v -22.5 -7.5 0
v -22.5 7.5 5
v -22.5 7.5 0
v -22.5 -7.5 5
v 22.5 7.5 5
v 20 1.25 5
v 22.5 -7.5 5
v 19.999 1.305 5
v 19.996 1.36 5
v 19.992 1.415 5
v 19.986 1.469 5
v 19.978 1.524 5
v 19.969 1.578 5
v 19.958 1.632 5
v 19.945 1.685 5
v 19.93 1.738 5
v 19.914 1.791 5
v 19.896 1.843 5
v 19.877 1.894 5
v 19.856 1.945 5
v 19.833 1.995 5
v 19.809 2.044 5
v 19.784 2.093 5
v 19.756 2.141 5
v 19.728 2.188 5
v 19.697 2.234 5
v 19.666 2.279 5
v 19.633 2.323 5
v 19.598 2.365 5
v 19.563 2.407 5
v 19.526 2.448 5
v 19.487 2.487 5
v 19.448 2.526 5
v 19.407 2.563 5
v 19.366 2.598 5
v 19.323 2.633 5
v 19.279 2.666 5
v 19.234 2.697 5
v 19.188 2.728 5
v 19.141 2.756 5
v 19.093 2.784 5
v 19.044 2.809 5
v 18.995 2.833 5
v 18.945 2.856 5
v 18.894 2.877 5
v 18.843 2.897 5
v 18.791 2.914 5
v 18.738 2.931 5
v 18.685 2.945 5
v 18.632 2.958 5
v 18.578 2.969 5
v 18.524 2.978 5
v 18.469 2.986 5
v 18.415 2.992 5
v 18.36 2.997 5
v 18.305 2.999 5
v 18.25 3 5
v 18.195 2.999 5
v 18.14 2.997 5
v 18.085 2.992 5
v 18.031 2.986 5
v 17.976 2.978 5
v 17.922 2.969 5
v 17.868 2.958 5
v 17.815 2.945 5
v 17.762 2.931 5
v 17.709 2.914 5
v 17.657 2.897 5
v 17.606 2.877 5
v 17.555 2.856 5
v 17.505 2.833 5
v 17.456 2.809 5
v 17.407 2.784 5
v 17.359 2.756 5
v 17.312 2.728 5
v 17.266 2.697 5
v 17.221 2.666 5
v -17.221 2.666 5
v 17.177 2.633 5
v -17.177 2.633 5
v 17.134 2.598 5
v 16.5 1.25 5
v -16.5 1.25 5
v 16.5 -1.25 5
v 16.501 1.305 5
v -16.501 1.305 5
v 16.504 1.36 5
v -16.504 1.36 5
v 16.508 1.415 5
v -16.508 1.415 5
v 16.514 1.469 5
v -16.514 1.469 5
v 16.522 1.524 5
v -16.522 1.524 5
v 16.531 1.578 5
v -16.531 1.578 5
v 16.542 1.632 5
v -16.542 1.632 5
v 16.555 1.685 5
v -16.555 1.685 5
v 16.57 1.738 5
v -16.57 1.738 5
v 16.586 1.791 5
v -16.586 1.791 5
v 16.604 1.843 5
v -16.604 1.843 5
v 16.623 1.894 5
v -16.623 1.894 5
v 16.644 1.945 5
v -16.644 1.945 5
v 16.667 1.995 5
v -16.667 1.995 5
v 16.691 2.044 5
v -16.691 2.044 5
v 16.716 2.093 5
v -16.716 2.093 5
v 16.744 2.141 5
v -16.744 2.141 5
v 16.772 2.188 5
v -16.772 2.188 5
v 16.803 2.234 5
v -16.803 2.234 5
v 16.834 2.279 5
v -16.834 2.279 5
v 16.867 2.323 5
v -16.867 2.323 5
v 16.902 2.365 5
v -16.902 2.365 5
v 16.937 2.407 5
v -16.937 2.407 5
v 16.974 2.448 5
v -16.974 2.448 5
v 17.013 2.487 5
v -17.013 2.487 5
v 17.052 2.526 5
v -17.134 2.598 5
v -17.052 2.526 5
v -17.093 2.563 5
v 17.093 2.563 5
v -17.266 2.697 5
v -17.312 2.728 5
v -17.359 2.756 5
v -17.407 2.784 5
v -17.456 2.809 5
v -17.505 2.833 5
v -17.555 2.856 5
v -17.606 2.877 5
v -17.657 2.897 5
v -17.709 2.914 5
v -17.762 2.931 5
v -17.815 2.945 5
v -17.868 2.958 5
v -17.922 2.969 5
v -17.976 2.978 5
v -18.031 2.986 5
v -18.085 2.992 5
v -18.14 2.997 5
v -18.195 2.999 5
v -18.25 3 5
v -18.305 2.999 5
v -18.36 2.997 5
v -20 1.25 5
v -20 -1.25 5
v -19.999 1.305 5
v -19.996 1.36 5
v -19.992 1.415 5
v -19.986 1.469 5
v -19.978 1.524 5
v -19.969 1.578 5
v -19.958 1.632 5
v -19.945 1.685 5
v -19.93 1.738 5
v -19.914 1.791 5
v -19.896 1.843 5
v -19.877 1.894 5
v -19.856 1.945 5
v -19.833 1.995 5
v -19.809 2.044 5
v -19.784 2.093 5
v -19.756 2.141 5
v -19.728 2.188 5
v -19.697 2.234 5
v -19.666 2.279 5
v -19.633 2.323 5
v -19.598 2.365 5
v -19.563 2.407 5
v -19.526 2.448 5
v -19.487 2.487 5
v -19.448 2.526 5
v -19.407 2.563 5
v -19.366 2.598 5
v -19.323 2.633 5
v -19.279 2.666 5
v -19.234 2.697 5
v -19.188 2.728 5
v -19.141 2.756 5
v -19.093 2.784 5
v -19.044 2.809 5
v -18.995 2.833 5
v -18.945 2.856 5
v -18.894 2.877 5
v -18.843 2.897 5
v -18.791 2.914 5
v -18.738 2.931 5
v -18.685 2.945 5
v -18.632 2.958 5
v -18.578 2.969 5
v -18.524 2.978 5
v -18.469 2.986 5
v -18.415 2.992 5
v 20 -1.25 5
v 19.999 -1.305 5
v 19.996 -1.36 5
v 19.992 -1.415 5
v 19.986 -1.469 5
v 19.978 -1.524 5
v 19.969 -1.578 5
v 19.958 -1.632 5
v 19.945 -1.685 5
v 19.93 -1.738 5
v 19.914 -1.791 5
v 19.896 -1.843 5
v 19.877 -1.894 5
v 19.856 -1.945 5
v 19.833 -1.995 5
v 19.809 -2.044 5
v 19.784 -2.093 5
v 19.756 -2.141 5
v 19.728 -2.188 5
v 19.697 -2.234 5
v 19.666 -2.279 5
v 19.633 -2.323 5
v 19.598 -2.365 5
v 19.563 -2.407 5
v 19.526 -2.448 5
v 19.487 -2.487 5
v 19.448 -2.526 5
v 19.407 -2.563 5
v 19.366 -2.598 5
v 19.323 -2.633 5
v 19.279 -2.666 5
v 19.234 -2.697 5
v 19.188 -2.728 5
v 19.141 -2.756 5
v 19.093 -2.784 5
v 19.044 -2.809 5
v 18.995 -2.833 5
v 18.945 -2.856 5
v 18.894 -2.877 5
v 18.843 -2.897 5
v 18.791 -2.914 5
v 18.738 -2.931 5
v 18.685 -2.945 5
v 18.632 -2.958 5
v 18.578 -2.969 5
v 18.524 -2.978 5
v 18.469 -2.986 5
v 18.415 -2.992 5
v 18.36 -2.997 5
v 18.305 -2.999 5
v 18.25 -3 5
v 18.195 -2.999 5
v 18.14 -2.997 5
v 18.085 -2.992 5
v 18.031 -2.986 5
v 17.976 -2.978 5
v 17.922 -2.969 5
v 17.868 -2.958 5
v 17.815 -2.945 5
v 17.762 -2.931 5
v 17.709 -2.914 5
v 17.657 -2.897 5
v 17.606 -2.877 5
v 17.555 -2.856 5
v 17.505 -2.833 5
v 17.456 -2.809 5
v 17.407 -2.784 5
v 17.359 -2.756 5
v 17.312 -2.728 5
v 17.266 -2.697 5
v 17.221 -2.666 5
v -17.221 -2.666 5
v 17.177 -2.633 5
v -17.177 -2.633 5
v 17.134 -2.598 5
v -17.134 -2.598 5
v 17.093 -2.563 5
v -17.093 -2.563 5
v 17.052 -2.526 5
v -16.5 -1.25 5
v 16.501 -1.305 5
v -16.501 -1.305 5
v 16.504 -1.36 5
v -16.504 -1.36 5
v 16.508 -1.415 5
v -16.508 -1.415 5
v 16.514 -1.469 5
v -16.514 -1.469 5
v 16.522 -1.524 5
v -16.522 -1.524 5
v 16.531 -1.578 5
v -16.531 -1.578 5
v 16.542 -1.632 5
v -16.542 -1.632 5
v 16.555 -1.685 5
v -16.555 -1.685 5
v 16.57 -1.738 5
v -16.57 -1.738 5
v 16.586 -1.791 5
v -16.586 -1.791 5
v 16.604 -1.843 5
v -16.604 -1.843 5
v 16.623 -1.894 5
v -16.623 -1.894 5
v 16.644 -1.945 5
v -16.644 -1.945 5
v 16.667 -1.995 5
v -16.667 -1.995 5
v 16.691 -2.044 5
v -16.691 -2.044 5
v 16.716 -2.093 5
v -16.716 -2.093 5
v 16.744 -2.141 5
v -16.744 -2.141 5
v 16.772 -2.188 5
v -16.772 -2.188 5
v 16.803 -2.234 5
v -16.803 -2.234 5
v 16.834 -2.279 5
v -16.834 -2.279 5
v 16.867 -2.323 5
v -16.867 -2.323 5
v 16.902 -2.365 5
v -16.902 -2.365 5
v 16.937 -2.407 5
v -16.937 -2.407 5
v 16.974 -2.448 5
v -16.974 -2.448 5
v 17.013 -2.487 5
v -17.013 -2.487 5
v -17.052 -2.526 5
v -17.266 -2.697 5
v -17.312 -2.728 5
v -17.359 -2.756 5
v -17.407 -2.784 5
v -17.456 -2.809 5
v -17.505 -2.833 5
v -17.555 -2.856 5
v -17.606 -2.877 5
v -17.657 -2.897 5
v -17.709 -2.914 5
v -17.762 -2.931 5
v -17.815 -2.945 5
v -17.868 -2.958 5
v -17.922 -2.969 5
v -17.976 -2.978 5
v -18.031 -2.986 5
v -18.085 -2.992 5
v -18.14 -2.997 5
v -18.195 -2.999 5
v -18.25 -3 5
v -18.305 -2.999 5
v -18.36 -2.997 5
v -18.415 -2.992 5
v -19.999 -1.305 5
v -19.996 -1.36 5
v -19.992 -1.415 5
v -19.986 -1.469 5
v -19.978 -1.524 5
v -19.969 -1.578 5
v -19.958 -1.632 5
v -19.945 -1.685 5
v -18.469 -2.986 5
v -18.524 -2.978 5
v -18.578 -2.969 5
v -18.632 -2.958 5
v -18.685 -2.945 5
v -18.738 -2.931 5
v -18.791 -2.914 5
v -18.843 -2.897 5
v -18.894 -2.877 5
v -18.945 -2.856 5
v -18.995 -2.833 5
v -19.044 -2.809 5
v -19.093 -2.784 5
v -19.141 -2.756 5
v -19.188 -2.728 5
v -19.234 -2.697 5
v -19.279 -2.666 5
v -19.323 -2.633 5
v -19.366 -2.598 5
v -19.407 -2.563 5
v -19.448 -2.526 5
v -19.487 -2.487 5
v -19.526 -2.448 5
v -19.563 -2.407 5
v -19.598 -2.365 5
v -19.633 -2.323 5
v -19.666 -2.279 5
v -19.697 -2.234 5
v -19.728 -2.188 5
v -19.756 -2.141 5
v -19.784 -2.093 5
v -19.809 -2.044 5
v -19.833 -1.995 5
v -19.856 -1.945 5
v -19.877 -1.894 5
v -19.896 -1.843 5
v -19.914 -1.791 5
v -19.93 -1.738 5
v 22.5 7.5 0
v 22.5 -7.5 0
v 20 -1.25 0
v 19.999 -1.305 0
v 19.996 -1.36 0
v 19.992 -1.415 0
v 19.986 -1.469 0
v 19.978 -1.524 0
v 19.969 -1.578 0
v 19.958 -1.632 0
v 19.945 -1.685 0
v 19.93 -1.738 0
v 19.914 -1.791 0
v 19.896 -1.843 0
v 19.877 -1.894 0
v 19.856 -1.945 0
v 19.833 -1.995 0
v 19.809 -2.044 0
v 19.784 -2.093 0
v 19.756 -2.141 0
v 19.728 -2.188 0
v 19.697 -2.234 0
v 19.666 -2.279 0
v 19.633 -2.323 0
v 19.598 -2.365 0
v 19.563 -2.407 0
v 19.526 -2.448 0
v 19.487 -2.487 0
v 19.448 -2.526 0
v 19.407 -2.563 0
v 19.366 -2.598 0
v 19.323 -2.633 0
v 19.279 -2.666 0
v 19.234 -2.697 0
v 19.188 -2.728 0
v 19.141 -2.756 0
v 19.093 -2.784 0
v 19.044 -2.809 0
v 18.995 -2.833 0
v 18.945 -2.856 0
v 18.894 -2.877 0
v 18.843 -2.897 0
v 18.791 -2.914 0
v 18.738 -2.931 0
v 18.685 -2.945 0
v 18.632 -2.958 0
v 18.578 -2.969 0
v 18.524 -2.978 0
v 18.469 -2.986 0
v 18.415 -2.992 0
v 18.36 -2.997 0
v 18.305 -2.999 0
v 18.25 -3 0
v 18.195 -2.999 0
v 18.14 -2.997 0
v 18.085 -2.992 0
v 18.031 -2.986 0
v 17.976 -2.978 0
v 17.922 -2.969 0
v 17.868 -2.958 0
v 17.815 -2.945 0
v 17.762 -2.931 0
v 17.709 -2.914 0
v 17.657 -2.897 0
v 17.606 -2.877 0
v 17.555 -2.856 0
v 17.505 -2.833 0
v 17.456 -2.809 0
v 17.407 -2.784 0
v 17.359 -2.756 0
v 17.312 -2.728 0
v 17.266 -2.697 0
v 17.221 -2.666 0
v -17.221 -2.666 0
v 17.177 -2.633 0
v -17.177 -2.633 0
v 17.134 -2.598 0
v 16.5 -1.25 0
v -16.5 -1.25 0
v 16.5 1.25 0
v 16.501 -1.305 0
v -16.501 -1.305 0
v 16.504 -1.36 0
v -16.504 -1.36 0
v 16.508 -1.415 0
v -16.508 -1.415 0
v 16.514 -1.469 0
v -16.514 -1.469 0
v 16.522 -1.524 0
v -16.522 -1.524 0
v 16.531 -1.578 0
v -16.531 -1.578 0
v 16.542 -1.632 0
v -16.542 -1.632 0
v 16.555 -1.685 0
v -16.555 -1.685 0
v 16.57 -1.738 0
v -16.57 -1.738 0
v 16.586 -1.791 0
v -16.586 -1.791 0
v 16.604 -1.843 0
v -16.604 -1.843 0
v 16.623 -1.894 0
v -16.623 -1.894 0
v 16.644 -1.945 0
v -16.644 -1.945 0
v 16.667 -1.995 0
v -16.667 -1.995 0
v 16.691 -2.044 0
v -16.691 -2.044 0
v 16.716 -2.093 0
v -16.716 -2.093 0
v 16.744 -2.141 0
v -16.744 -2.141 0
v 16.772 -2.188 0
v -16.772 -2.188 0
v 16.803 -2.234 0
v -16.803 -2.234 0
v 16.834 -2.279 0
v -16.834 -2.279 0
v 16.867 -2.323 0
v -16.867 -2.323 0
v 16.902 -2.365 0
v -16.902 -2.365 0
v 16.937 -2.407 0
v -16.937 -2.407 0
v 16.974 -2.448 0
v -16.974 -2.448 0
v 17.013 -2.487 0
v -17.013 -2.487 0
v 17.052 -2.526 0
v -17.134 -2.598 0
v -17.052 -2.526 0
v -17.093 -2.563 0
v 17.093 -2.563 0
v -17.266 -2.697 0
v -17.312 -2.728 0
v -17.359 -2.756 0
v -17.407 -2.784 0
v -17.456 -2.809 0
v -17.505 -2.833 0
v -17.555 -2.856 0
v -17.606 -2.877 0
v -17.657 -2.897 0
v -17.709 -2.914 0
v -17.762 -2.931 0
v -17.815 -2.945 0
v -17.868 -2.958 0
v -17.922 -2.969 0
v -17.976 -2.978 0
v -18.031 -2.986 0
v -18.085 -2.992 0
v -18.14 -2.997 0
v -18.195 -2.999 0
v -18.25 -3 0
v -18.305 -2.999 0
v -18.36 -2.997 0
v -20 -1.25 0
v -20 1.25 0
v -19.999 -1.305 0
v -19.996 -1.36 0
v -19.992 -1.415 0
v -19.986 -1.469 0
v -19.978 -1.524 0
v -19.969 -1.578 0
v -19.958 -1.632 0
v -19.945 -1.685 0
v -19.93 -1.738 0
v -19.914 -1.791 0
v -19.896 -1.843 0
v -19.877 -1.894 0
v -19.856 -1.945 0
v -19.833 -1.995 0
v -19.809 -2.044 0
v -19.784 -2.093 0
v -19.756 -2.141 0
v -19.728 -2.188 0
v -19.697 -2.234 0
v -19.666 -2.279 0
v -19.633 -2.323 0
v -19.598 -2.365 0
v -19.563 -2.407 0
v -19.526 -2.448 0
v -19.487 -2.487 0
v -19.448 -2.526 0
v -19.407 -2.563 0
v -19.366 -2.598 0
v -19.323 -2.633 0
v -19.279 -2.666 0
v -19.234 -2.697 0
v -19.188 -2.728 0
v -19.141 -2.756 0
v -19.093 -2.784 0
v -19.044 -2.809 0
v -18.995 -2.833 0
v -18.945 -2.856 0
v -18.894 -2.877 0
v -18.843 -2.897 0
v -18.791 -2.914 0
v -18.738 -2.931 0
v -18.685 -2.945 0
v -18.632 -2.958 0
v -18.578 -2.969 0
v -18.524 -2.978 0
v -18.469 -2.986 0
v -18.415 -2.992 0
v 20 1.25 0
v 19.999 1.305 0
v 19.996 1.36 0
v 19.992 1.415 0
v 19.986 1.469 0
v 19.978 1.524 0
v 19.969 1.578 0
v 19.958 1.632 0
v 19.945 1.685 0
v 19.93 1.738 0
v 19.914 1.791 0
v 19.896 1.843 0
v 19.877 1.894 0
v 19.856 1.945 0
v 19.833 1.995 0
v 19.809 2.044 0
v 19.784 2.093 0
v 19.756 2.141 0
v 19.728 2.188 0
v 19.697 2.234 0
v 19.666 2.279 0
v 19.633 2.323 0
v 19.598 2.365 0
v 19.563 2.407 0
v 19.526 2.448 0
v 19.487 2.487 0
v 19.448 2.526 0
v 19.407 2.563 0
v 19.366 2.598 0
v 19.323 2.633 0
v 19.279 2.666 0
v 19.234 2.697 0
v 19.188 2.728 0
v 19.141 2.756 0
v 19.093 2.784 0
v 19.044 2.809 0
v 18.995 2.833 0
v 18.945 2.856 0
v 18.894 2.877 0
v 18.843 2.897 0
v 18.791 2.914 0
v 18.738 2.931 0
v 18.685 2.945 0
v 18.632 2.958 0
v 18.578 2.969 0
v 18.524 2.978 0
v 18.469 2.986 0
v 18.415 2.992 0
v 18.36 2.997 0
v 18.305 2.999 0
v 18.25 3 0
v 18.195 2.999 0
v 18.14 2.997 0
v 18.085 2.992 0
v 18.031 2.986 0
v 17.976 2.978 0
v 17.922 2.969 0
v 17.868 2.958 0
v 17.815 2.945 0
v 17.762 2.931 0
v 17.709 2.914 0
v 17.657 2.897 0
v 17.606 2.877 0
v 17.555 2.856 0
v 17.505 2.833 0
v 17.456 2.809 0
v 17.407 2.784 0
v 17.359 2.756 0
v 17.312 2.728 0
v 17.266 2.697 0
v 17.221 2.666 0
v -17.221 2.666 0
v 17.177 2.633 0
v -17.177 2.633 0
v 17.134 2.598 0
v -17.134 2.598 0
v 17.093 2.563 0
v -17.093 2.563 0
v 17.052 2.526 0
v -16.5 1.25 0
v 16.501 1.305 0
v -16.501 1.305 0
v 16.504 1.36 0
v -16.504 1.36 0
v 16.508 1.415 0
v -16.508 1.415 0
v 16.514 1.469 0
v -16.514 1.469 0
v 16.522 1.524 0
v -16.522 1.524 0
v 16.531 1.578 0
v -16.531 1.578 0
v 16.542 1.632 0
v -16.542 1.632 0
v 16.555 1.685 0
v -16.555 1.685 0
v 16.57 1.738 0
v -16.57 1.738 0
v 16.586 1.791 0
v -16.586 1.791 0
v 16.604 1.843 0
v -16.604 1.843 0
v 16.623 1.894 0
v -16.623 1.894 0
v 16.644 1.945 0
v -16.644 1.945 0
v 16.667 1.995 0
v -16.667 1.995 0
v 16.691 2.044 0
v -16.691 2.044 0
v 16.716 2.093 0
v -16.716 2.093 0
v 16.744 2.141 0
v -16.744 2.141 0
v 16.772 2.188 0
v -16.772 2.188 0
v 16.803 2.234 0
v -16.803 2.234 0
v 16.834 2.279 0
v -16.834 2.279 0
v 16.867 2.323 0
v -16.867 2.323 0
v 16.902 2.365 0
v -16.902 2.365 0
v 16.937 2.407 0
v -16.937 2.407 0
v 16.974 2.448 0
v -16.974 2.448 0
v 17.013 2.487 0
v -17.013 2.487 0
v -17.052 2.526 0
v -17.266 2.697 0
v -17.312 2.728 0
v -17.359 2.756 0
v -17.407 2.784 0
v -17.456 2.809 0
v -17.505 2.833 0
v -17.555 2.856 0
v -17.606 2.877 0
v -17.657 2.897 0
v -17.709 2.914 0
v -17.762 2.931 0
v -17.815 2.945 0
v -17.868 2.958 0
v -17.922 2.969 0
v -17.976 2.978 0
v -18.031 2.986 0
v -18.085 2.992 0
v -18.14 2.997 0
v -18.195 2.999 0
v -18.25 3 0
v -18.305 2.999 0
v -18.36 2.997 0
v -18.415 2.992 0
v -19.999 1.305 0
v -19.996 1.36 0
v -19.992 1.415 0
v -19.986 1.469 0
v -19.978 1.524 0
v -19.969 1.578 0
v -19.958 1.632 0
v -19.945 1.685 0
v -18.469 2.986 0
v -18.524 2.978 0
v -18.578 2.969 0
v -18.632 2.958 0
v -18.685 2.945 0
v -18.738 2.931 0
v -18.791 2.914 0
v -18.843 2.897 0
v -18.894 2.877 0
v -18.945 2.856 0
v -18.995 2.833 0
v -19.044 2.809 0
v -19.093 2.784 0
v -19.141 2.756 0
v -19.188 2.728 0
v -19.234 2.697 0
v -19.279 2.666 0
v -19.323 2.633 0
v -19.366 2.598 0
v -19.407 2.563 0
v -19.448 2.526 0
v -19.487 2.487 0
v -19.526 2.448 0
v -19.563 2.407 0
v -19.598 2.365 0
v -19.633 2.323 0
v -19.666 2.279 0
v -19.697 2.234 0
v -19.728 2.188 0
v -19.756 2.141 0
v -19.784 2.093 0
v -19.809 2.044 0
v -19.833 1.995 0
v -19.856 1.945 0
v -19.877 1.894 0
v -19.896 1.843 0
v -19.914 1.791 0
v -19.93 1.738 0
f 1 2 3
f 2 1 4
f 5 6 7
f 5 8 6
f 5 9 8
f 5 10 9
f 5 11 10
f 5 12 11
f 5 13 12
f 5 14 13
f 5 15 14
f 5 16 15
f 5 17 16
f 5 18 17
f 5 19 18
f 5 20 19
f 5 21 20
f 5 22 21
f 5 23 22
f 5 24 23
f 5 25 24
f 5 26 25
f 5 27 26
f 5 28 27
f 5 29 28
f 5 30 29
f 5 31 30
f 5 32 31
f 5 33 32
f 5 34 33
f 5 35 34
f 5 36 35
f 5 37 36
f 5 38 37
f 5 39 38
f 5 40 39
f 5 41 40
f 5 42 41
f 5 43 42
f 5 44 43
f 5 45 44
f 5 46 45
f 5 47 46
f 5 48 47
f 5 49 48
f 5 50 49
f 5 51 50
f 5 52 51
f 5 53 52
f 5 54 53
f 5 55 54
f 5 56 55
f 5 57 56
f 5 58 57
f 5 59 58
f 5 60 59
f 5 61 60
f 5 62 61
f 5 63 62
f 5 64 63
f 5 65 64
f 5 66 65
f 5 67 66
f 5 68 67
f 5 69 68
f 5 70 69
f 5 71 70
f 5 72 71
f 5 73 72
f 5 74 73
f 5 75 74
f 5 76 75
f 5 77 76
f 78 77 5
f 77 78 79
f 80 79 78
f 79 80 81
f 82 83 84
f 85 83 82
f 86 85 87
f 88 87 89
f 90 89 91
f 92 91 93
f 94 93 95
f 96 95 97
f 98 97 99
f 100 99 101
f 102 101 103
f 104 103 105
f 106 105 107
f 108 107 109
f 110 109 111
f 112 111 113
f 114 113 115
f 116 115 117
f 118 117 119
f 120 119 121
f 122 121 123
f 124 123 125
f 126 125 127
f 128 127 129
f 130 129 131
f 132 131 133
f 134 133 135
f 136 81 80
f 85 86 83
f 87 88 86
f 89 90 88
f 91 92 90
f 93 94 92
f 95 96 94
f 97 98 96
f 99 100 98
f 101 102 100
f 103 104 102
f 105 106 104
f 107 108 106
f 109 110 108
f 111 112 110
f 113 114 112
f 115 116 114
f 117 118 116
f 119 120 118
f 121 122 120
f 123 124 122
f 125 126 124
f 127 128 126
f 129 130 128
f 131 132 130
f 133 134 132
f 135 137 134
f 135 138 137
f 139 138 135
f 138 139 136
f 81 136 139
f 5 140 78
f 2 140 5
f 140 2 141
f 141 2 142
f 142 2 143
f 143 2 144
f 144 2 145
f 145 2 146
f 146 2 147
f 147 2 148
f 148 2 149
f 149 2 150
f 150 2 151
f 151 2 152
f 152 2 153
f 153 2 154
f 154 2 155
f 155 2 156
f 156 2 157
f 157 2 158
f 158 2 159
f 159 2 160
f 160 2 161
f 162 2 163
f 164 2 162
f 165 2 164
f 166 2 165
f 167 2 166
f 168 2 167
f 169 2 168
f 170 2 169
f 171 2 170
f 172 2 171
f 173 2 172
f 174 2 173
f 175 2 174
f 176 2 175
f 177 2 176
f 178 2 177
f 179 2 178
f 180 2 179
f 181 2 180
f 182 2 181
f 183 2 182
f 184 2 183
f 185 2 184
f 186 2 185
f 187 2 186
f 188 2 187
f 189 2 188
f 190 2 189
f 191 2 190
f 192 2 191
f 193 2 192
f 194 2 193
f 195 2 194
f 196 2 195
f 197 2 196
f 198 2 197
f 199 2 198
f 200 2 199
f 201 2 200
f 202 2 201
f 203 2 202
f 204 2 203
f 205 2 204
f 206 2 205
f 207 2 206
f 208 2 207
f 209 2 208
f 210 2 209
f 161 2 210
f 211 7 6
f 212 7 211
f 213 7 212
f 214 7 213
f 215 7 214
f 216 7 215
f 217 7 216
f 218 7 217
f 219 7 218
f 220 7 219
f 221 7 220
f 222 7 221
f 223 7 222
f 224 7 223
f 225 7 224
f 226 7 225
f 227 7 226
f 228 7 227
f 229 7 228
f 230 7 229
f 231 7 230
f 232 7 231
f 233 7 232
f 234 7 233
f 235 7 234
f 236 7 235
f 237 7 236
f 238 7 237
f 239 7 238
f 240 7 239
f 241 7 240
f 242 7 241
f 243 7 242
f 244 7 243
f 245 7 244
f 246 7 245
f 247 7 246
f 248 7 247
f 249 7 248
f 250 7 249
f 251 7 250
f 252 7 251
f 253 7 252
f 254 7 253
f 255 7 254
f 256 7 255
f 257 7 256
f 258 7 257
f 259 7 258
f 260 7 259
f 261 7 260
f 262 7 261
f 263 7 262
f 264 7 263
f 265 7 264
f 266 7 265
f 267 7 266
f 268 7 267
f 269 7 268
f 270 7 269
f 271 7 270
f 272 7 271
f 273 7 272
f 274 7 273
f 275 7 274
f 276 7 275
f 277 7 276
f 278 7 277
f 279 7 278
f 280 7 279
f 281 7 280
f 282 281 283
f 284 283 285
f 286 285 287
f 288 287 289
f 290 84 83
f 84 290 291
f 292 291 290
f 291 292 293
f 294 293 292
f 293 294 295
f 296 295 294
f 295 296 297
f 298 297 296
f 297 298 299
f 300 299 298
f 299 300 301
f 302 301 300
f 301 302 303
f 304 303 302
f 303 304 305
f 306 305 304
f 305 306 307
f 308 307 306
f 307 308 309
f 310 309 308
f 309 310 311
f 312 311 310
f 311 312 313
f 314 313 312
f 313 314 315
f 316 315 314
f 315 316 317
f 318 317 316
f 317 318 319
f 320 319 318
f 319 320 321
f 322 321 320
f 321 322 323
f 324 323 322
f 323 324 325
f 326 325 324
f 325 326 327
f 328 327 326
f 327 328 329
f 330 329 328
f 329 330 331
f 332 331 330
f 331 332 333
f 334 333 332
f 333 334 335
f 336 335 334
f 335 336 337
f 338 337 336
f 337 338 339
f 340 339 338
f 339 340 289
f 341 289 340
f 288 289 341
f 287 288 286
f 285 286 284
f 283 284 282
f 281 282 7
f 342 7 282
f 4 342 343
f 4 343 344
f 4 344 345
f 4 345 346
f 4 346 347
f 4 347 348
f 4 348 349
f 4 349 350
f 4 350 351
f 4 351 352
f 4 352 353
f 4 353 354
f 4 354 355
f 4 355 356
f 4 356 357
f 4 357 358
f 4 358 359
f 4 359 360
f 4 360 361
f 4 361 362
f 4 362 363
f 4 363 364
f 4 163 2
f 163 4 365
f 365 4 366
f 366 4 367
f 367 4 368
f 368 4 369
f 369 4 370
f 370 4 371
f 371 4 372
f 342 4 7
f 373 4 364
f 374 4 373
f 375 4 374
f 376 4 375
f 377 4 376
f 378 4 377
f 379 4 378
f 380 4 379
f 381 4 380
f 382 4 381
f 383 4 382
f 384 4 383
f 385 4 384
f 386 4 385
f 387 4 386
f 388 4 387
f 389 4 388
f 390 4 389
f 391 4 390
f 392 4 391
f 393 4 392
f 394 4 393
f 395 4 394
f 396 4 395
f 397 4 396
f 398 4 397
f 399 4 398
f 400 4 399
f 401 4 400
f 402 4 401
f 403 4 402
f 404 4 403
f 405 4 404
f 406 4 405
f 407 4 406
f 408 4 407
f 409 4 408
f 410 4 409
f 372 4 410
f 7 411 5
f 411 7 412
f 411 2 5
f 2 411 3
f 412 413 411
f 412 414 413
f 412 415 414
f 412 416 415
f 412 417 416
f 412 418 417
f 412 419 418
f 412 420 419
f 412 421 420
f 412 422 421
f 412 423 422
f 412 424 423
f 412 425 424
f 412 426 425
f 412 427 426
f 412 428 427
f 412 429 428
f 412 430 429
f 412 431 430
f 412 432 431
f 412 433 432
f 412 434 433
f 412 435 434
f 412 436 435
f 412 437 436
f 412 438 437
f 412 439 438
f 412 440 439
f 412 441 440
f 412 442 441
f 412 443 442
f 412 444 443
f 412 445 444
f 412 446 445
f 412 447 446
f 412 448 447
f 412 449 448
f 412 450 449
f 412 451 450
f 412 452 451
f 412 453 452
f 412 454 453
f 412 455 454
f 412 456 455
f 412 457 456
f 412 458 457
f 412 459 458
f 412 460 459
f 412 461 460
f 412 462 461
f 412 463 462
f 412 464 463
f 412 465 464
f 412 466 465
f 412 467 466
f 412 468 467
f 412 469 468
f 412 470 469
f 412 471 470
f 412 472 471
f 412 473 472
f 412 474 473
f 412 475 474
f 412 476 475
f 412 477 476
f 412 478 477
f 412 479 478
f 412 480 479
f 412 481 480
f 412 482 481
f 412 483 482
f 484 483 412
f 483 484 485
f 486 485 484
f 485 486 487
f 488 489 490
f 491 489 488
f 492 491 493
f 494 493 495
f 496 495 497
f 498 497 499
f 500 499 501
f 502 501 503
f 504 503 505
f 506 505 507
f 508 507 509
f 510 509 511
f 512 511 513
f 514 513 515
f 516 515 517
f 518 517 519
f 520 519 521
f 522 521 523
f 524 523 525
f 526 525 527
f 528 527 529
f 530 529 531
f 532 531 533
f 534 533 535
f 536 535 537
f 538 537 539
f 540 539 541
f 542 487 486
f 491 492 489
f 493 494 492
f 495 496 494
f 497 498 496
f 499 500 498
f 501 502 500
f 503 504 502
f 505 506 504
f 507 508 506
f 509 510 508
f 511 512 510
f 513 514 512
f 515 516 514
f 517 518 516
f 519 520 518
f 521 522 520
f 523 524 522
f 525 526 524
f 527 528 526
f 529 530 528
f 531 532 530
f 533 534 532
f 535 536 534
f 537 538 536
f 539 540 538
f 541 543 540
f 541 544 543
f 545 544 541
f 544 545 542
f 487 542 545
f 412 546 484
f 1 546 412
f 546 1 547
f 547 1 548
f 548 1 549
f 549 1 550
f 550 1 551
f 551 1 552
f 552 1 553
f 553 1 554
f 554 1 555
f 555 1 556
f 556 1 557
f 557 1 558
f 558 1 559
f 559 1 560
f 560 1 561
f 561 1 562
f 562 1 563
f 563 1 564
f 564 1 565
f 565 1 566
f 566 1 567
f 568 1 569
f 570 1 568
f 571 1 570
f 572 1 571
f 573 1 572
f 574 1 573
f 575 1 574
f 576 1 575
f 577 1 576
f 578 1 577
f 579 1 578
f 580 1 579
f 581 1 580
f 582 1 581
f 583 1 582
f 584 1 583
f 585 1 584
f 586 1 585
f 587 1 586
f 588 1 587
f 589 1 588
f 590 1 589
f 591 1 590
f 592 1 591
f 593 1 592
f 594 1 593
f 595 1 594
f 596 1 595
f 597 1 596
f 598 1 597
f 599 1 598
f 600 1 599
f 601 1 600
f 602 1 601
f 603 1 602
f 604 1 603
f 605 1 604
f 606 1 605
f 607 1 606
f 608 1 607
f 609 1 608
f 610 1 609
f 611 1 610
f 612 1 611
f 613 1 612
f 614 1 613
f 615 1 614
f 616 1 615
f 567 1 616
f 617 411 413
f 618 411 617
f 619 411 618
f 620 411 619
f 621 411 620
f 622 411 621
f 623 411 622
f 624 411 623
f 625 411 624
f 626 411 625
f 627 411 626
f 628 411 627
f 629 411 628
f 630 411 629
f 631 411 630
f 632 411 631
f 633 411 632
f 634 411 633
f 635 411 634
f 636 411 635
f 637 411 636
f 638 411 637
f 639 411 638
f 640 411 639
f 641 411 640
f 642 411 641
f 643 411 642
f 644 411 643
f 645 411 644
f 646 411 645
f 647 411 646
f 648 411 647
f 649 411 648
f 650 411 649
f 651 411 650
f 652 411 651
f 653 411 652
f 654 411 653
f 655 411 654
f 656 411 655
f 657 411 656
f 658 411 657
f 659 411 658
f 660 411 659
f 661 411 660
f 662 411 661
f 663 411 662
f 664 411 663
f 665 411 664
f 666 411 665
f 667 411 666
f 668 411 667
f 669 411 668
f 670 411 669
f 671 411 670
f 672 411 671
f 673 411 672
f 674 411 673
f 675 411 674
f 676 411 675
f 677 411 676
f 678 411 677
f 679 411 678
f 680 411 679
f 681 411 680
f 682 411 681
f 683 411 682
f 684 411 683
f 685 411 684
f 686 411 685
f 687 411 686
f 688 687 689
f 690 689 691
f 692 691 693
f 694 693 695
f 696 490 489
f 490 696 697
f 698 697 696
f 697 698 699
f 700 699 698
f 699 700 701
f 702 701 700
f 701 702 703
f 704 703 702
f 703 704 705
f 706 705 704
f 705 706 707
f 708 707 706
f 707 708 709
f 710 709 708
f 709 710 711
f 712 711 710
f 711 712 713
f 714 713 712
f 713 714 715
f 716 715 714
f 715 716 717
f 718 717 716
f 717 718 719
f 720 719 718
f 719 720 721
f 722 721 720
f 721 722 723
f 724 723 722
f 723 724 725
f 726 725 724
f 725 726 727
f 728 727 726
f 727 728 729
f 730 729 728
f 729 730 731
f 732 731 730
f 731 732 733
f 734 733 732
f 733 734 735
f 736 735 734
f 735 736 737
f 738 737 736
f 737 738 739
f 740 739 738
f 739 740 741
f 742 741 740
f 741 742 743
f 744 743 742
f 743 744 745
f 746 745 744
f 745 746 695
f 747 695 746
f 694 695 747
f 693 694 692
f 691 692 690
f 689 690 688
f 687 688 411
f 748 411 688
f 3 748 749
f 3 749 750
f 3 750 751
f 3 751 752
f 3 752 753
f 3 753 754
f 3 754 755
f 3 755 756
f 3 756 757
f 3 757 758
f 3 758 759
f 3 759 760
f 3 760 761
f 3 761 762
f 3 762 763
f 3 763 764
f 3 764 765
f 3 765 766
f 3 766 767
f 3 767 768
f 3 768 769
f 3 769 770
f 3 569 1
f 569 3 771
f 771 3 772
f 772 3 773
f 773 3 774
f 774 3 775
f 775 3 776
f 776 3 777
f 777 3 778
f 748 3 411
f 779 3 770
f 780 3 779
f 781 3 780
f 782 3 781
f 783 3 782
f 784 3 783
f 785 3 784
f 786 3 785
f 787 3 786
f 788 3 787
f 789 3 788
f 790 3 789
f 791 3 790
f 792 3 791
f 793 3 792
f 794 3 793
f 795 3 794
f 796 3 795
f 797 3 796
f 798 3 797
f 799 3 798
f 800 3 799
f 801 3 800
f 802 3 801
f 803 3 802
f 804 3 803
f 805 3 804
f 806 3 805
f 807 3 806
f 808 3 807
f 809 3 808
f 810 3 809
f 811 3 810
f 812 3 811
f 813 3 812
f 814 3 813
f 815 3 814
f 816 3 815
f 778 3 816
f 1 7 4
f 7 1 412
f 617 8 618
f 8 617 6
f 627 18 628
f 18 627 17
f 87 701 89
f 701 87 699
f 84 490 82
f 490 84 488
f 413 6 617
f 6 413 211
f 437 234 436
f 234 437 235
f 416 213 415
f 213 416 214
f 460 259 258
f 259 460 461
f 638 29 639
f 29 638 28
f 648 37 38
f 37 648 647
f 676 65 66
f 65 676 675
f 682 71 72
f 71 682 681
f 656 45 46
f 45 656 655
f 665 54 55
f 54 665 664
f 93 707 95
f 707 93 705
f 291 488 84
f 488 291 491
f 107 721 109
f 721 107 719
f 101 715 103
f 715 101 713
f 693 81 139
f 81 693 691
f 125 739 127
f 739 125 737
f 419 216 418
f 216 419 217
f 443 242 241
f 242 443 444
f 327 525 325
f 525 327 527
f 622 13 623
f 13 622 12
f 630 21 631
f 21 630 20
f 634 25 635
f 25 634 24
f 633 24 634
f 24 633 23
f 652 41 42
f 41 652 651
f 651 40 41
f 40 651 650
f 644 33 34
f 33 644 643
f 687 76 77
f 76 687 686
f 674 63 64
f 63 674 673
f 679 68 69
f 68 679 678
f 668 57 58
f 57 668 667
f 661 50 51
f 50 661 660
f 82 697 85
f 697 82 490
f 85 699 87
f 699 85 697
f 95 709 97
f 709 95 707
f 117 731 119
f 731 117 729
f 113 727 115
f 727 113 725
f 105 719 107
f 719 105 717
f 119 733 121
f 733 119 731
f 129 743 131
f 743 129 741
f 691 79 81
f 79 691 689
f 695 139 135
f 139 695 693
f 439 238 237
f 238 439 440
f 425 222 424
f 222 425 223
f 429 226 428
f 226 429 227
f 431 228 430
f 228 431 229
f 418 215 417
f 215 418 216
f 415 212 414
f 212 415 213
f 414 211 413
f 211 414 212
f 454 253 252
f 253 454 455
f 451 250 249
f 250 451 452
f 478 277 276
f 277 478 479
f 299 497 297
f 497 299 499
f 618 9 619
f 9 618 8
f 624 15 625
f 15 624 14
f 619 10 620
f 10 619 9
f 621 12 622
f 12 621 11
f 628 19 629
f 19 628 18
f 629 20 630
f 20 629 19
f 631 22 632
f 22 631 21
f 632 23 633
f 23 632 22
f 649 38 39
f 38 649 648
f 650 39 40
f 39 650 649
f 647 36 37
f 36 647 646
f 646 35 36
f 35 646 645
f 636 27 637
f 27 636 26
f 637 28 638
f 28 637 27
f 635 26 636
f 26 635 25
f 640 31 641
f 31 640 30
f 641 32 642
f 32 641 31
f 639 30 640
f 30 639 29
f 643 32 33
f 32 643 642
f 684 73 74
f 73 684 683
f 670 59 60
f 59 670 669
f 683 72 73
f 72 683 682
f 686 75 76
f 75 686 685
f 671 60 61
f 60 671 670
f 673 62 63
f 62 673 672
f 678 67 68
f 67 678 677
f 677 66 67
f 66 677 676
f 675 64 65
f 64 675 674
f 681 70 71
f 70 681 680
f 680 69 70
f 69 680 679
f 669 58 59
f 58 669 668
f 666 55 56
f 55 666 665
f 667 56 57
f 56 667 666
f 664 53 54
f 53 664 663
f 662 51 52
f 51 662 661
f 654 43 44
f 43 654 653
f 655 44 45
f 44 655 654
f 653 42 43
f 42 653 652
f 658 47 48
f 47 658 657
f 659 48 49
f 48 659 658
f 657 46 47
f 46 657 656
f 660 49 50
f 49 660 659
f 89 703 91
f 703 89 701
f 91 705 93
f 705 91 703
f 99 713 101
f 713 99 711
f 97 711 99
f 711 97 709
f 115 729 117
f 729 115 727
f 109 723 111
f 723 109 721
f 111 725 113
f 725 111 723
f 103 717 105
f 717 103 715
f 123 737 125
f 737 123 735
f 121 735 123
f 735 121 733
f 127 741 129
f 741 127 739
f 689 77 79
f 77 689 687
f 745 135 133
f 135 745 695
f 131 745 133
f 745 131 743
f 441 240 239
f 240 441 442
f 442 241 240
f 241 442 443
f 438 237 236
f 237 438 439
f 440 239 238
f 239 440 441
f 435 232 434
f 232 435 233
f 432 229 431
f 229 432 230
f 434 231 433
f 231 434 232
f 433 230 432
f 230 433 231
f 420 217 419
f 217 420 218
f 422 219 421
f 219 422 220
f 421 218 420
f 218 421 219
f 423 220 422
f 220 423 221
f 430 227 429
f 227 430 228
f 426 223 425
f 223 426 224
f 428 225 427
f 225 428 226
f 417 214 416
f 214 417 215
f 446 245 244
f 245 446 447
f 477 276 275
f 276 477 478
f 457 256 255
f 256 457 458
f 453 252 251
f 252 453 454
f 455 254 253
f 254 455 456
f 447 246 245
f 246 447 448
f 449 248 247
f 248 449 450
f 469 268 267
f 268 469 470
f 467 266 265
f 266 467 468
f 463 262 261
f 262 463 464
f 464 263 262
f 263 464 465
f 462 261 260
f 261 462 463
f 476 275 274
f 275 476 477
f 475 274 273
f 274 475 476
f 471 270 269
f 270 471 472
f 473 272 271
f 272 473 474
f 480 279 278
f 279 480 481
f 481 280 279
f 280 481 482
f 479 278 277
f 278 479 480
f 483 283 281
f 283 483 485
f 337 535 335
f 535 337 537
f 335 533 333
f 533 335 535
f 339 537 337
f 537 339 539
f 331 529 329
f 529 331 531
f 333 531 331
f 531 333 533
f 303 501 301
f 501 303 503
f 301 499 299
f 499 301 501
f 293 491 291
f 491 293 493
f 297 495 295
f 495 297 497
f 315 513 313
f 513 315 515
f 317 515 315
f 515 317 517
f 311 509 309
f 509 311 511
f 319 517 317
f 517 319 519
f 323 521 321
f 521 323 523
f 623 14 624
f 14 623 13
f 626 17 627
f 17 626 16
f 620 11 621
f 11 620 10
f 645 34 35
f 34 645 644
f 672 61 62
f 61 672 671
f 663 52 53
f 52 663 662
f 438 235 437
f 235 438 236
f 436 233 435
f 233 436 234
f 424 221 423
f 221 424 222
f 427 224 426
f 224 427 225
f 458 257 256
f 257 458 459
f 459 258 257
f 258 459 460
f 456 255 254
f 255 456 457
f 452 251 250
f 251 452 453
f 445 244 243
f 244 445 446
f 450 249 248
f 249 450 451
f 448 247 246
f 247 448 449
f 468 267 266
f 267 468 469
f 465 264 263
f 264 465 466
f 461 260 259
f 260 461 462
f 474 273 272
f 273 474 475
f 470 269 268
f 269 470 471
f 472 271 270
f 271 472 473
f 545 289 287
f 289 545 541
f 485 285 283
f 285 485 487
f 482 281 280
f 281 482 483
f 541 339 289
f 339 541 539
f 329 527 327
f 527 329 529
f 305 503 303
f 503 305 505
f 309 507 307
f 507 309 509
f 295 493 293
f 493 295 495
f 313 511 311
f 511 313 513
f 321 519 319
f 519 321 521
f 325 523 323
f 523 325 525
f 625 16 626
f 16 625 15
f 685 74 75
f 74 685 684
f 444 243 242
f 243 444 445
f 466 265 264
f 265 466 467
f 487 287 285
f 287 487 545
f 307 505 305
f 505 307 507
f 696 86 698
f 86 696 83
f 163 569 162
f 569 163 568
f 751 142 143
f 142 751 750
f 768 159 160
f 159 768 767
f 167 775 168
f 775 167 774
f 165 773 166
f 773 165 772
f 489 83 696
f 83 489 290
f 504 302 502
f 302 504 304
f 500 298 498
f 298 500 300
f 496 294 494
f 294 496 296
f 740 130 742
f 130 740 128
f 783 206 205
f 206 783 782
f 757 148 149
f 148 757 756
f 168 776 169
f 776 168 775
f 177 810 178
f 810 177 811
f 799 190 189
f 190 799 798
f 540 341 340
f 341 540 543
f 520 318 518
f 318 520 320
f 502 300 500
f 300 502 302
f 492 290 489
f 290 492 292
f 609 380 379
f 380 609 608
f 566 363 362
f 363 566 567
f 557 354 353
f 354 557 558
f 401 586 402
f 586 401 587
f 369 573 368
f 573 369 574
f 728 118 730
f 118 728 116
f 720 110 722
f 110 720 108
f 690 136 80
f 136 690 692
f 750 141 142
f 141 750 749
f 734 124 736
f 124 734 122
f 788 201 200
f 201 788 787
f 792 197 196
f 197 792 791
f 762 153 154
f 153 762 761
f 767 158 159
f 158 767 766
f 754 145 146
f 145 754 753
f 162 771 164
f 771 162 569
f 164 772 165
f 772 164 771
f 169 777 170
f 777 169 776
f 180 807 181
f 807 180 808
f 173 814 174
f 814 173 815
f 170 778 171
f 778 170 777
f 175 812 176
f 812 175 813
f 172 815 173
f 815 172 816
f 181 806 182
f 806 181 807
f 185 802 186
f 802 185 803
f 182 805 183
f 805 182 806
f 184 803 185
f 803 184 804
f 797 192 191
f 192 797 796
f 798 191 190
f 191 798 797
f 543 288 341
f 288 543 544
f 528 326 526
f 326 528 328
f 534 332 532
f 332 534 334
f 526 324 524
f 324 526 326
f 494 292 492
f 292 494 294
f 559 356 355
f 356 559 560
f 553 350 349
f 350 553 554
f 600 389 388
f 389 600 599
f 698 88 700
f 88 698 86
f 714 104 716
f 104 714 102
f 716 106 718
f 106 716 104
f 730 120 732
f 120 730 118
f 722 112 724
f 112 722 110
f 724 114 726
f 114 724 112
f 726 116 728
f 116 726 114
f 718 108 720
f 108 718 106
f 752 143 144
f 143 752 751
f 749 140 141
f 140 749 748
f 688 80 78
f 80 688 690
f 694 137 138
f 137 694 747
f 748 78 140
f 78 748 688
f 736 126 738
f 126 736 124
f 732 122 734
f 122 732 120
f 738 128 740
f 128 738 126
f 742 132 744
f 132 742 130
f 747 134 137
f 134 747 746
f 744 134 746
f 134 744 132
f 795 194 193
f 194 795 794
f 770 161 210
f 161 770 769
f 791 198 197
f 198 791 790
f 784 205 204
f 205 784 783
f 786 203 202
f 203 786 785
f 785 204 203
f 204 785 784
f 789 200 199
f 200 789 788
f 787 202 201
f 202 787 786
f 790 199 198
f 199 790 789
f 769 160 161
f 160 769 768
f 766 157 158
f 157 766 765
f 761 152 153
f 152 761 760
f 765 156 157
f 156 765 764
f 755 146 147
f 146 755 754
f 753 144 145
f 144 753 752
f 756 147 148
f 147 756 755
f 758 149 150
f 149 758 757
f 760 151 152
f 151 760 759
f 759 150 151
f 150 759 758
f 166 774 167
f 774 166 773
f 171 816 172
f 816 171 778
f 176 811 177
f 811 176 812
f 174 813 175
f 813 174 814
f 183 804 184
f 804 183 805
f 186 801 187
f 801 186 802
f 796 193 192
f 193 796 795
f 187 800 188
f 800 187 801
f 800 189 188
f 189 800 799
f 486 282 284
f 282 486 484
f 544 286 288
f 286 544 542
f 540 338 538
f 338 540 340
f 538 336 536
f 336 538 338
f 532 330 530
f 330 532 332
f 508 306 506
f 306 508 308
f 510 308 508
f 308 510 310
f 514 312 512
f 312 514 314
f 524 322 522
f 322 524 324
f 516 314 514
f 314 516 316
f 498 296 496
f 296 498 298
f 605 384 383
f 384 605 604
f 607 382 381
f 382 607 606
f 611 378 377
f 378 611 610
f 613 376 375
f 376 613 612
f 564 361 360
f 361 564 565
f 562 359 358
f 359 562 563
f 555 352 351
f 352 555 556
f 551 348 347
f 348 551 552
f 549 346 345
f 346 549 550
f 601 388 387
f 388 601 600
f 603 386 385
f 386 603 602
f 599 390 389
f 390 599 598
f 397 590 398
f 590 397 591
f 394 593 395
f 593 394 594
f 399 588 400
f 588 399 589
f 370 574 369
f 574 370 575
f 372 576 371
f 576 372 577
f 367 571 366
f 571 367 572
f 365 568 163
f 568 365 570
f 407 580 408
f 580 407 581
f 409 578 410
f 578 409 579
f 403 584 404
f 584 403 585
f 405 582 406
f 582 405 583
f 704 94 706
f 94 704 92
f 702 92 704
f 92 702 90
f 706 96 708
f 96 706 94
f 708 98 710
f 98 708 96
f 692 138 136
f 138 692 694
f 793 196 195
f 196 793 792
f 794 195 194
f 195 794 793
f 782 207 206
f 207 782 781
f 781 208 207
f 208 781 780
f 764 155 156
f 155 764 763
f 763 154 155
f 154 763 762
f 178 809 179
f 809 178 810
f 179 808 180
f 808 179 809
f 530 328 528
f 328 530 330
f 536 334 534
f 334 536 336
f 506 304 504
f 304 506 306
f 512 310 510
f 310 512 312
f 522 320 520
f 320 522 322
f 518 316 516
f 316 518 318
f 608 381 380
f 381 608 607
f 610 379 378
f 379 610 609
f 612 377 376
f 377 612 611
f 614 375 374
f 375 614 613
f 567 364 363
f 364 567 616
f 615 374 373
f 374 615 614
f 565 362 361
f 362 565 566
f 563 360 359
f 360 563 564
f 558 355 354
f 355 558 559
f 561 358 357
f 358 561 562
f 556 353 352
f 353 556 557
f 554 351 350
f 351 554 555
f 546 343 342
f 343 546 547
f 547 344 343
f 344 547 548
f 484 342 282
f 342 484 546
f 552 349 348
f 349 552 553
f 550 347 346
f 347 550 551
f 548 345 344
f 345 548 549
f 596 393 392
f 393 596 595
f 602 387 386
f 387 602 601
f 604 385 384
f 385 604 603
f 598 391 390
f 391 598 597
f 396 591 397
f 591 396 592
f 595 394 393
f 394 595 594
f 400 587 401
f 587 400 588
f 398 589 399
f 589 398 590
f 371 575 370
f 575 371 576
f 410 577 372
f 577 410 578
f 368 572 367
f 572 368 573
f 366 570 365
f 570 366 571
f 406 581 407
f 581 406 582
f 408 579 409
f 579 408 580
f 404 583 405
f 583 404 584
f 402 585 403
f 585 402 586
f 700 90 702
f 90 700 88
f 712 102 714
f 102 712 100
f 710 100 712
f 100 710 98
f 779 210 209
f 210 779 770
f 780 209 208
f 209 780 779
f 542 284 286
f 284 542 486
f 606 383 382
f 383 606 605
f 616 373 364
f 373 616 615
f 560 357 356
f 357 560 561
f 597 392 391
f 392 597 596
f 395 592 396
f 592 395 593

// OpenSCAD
$fn = 200;

length = 45;
width = 15;
height = 5;

holeDia = 3.5;
holeLength = 6;

holeDist = 2.5;

holder();

module holder(){
    
    difference(){
    
        translate([-length/2, - width/2, 0])
        cube([length, width, height]);
        
        translate([length/2- holeDist- holeDia/2,0,-1])
        hole();
        
        translate([-(length/2- holeDist- holeDia/2),0,-1])
        hole();
        
        
        
    }
}

module hole(){
    
    hull(){
        
        translate([0,holeLength/2-holeDia/2,0])
        cylinder(d = holeDia, h = 10);
        
        translate([0,-holeLength/2+holeDia/2,0])
        cylinder(d = holeDia, h = 10);
        
    }
    
}
